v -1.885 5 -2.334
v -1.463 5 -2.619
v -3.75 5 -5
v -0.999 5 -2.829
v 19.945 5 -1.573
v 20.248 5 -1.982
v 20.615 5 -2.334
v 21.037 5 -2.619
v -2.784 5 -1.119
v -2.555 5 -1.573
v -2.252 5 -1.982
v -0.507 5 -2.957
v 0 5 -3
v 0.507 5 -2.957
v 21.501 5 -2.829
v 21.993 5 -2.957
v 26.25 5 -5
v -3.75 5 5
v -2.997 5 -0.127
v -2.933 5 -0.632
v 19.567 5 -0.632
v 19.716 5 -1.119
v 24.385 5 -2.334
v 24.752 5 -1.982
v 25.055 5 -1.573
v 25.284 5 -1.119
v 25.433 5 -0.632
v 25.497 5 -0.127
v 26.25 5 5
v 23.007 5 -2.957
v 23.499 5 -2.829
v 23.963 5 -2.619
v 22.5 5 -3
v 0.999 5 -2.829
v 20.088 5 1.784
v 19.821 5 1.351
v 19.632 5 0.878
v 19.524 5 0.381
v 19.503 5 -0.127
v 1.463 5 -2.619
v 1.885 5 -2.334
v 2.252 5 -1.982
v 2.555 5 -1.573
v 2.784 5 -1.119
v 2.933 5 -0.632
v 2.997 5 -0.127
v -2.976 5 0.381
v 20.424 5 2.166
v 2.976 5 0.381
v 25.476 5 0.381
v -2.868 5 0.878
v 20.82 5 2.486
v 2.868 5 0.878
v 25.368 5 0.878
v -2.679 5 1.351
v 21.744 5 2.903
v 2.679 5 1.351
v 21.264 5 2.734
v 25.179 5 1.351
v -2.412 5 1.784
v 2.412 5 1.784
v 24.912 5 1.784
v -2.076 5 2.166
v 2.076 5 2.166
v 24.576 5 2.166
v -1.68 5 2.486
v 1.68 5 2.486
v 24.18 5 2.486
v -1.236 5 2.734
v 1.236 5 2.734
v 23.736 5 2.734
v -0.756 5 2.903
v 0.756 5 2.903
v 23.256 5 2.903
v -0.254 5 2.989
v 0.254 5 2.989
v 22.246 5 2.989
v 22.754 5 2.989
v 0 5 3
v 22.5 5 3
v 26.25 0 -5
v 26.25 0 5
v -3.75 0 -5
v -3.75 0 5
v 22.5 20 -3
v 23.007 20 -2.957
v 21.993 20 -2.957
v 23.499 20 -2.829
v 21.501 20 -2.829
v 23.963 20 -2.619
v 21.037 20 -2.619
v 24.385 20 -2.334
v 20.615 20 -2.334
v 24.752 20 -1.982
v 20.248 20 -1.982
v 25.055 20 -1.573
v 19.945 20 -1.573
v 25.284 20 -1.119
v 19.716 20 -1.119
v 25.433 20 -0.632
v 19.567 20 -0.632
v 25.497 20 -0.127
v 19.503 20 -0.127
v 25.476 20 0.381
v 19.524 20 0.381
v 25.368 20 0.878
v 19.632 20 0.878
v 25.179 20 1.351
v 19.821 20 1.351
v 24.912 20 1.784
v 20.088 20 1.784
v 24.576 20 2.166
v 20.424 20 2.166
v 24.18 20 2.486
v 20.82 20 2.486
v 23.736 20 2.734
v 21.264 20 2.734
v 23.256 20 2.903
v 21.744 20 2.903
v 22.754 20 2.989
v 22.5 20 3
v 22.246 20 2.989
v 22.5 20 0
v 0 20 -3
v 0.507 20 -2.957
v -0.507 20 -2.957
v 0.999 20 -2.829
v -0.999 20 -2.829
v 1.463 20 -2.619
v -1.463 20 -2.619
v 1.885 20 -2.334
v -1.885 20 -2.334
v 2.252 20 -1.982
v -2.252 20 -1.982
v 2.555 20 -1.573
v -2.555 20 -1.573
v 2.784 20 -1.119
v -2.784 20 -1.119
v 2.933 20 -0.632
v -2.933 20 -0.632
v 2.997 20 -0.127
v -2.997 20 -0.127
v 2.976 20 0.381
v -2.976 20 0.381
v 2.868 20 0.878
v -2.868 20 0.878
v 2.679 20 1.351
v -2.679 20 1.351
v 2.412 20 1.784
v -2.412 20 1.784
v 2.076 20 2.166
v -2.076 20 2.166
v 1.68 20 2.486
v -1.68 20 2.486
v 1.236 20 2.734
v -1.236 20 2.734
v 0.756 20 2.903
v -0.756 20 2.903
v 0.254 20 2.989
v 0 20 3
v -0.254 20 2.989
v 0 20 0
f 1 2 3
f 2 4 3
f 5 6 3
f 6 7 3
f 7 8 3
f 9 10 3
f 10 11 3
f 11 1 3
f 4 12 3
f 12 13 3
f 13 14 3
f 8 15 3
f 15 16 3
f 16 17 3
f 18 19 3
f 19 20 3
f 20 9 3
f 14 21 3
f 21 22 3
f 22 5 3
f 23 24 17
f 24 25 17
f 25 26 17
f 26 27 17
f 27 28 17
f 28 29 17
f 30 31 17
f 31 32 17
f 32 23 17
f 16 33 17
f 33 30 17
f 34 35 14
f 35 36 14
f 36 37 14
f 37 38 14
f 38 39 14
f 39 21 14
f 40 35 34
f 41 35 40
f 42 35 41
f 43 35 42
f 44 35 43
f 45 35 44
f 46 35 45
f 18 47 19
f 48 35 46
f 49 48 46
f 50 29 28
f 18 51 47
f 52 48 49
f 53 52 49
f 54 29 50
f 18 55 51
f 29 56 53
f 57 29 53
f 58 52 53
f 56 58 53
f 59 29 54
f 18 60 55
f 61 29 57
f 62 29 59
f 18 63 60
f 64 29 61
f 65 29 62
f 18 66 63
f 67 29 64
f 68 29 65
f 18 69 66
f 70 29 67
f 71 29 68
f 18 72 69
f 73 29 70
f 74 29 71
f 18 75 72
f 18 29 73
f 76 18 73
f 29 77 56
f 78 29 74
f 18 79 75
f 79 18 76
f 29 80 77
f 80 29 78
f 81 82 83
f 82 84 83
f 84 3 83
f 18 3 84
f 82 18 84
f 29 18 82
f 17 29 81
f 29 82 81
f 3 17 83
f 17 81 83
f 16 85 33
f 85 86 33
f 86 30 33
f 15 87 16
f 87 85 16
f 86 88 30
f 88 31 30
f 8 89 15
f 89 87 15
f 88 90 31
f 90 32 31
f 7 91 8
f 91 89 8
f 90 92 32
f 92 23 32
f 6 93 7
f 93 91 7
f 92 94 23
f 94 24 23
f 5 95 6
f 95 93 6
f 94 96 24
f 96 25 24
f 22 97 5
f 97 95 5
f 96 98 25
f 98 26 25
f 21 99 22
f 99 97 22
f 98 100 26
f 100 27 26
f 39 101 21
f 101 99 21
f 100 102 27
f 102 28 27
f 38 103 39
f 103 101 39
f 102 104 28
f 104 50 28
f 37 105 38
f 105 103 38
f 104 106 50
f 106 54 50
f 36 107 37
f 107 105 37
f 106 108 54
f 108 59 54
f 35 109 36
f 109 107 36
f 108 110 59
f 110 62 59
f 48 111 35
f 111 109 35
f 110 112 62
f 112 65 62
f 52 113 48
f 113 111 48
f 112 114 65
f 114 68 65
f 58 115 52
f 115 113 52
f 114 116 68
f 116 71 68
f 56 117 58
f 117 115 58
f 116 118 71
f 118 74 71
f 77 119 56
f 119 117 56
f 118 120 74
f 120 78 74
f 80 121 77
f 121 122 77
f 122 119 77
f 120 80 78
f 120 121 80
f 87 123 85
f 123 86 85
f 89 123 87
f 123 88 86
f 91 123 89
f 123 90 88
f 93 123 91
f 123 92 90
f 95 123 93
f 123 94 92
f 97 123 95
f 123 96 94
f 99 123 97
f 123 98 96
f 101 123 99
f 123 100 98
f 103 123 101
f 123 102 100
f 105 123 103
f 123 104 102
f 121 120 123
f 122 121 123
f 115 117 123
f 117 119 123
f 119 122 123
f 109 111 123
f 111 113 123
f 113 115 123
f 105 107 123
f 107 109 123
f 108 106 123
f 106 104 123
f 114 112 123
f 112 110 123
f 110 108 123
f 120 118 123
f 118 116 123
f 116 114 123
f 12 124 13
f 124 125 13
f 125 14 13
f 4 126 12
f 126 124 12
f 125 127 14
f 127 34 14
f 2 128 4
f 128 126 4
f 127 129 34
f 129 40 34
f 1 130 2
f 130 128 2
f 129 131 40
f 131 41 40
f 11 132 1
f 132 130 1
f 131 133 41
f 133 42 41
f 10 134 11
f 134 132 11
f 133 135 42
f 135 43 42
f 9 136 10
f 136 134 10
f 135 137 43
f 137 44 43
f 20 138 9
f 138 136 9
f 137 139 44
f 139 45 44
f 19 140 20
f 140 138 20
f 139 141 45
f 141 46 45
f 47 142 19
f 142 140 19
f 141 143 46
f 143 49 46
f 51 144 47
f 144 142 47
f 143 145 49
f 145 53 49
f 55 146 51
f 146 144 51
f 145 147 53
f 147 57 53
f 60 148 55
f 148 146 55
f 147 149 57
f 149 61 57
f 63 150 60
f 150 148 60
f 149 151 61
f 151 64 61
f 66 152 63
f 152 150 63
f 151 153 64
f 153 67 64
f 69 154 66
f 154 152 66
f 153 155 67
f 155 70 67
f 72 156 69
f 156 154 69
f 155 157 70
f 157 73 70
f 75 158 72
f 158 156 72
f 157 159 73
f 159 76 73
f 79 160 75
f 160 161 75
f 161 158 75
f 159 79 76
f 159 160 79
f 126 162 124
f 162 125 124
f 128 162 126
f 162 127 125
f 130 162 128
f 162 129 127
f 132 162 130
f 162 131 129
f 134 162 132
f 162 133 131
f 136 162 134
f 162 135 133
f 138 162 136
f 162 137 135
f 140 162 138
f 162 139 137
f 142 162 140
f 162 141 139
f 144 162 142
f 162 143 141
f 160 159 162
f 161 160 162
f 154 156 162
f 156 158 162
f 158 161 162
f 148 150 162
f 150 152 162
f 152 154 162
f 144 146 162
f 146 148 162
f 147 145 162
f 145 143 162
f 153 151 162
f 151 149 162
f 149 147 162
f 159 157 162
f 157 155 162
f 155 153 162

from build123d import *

# Parameters (mm, degrees)
SKETCH1_W           = 30
SKETCH1_H           = 10
SKETCH1_R           = 3
BOSS_EXTRUDE1_DEPTH = 5
SKETCH1_2_R         = 3
BOSS_EXTRUDE2_DEPTH = 20


with BuildPart() as part:
    # Sketch1 → Boss-Extrude1 (new body)
    with BuildSketch(Plane(origin=(0, 0, 0), x_dir=(1, 0, 0), z_dir=(0, 1, 0))):
        with Locations((11.25, 0)):
            Rectangle(SKETCH1_W, SKETCH1_H)
        Circle(SKETCH1_R, mode=Mode.SUBTRACT)
        with Locations((22.5, 0)):
            Circle(SKETCH1_R, mode=Mode.SUBTRACT)
    extrude(amount=BOSS_EXTRUDE1_DEPTH)

    # Sketch1<2> → Boss-Extrude2 (add)
    with BuildSketch(Plane(origin=(0, 0, 0), x_dir=(1, 0, 0), z_dir=(0, 1, 0))):
        Circle(SKETCH1_2_R)
        with Locations((22.5, 0)):
            Circle(SKETCH1_2_R)
    extrude(amount=BOSS_EXTRUDE2_DEPTH)


solid = part.part
